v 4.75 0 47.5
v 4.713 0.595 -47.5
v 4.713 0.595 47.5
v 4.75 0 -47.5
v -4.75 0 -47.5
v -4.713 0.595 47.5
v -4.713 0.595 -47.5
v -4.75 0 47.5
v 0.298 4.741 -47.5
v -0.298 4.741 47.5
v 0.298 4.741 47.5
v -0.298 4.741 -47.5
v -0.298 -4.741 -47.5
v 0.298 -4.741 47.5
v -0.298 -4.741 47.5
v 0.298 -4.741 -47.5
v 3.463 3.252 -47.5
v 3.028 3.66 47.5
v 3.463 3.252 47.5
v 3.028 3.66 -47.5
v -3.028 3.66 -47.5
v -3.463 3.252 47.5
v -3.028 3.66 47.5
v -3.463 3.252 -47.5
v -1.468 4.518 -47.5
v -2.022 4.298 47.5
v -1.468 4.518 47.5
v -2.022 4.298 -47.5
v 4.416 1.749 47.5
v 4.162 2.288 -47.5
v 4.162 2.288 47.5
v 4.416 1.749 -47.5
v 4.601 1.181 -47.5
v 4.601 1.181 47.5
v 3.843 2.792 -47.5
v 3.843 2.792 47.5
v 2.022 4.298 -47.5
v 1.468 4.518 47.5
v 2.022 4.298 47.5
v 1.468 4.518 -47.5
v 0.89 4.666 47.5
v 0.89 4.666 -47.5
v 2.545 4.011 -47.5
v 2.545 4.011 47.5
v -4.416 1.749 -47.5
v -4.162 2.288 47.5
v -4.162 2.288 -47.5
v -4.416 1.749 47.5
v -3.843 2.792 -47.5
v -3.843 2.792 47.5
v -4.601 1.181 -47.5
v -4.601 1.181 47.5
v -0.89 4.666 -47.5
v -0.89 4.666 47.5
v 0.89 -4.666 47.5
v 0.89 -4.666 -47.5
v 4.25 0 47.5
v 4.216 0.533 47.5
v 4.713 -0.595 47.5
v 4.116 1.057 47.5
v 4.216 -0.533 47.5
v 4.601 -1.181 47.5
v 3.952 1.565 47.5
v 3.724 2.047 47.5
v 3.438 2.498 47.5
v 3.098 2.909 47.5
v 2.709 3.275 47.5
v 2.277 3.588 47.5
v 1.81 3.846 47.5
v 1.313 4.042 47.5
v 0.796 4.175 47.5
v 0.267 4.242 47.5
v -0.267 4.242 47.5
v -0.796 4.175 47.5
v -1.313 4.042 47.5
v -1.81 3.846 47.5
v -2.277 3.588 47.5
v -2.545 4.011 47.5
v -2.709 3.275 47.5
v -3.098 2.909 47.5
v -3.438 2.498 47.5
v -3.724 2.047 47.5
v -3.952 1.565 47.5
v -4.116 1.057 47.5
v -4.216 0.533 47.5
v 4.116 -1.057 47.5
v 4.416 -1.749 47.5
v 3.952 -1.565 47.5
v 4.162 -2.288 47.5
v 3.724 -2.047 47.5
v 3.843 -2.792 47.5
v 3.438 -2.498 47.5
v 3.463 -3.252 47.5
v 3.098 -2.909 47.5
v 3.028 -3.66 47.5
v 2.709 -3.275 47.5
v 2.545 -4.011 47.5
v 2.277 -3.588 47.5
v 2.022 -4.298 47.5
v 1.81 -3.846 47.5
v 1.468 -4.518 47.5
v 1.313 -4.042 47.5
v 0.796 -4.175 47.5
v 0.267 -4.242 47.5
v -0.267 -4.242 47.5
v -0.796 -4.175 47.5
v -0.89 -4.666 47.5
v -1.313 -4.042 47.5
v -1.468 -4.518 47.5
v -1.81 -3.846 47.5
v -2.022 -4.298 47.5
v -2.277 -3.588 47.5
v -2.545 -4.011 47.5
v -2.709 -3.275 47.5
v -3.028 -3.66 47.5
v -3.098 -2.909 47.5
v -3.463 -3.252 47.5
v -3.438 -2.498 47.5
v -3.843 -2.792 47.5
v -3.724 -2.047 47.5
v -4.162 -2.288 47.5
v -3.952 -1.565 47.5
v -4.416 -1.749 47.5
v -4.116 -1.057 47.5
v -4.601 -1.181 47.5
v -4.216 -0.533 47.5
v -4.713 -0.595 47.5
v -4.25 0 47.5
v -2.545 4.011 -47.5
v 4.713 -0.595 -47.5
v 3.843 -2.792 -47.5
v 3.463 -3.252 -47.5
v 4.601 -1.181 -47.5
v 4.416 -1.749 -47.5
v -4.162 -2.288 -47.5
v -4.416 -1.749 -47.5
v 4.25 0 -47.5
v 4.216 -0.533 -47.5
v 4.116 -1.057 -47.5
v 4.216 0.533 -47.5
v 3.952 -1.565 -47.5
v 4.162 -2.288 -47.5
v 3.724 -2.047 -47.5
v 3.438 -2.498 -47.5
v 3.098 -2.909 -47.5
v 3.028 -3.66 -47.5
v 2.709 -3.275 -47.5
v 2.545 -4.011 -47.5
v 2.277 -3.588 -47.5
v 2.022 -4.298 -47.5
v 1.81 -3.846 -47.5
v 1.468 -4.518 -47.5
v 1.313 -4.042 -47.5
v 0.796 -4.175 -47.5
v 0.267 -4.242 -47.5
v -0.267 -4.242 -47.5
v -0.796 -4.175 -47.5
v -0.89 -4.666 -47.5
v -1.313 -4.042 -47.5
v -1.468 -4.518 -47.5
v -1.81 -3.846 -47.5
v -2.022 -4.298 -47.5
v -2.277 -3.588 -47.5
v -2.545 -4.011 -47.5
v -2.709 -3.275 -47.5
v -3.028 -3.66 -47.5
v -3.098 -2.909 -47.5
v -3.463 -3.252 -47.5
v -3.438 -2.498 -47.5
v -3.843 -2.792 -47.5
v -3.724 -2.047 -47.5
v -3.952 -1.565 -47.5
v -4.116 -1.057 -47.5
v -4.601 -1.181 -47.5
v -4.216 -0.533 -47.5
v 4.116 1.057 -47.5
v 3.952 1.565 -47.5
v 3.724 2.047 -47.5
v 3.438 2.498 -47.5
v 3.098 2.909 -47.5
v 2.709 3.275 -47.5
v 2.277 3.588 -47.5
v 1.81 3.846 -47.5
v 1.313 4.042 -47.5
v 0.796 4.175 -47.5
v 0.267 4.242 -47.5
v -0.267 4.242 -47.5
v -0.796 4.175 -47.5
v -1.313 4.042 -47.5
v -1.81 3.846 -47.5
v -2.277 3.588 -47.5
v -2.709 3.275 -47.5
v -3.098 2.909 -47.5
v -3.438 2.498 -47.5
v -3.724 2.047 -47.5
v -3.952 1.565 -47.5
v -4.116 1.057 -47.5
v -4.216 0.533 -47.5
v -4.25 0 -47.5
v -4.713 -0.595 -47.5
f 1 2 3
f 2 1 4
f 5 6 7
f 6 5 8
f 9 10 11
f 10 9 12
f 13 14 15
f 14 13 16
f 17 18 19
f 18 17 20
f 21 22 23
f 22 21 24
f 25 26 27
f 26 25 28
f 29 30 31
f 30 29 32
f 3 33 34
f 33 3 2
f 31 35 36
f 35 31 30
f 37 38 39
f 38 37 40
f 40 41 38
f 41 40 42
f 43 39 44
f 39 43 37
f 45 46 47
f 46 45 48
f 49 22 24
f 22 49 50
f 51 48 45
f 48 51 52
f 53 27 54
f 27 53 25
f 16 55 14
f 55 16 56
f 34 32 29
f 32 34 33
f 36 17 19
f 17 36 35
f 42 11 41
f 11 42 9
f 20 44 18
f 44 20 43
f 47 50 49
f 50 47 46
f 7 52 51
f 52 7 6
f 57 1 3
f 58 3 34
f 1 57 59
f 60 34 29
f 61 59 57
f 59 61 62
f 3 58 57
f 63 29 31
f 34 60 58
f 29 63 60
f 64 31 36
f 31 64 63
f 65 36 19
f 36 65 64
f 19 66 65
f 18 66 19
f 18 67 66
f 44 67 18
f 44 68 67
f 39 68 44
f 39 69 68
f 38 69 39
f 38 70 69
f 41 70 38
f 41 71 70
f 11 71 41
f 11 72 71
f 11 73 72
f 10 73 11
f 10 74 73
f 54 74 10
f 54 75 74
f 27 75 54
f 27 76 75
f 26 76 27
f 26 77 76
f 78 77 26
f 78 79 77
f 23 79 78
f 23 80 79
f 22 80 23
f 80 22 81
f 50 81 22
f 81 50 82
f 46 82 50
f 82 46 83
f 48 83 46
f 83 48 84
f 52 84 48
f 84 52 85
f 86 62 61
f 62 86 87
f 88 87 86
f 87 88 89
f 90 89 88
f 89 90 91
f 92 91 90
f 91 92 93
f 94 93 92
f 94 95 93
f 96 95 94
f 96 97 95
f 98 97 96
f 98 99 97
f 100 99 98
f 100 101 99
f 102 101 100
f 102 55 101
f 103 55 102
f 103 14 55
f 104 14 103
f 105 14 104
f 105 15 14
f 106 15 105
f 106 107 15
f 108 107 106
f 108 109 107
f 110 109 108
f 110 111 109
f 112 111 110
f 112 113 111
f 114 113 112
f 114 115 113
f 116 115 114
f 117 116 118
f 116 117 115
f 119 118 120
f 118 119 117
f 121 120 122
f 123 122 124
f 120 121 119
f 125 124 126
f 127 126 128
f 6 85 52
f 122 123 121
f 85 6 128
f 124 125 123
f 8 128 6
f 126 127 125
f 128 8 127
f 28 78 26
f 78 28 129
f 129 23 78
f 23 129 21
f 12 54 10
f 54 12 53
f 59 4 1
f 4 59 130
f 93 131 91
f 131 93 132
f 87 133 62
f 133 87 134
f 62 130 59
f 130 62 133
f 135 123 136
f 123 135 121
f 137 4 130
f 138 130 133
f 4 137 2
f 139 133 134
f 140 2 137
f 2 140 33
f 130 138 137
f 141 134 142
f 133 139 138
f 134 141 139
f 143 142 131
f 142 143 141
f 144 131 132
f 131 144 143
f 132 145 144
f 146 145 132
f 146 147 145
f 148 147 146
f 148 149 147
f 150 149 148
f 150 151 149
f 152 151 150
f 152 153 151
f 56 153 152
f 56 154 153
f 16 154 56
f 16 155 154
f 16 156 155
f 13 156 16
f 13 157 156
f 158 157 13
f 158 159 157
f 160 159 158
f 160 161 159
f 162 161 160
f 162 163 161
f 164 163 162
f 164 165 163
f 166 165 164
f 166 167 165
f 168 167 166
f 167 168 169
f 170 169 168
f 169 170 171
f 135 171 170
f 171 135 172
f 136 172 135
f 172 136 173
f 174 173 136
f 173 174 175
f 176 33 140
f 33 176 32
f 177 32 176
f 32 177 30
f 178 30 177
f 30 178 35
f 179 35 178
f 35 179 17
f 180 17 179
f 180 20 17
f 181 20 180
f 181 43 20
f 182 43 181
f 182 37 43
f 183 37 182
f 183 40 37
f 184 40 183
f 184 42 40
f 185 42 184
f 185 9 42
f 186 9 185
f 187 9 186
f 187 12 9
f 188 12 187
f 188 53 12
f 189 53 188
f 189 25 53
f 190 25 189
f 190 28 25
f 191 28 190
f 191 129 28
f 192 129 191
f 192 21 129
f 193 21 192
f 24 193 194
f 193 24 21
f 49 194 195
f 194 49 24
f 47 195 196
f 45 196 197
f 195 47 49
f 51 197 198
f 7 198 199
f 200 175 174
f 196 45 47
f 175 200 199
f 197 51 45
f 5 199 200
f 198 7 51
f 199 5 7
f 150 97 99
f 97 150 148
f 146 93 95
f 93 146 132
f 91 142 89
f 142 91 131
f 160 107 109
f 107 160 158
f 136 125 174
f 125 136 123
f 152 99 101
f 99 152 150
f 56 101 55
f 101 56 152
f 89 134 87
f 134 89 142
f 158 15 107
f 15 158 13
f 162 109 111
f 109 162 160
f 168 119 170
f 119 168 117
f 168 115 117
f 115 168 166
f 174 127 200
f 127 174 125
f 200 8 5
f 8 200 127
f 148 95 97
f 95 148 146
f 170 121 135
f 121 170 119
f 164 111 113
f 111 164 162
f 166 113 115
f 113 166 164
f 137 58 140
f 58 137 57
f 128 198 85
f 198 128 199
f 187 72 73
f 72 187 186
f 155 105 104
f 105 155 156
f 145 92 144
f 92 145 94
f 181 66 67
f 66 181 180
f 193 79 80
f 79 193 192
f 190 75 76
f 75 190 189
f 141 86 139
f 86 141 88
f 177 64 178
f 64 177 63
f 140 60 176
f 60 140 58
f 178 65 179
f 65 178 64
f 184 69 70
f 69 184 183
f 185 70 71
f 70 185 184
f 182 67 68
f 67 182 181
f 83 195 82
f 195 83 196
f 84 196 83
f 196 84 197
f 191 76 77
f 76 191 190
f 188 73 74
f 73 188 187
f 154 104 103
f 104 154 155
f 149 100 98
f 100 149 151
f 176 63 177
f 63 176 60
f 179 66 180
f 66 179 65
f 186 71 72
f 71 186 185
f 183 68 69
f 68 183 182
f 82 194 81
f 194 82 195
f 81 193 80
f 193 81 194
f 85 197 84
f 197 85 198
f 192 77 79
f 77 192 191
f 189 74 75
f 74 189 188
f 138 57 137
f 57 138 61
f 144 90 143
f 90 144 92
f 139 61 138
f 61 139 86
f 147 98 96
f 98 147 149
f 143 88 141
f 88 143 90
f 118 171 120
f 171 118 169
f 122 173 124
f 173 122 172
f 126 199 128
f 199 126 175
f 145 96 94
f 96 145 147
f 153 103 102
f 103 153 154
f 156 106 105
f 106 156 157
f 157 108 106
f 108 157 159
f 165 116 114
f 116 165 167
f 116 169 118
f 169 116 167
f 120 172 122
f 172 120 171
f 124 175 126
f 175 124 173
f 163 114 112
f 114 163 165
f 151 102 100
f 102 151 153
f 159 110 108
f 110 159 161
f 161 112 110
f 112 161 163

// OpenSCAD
$fn = 50;


difference() {
	union() {
		translate(v = [0, 0, -47.5000000000]) {
			cylinder(h = 95, r = 4.7500000000);
		}
	}
	union() {
		translate(v = [0, 0, -100.0000000000]) {
			cylinder(h = 200, r = 4.2500000000);
		}
	}
}
